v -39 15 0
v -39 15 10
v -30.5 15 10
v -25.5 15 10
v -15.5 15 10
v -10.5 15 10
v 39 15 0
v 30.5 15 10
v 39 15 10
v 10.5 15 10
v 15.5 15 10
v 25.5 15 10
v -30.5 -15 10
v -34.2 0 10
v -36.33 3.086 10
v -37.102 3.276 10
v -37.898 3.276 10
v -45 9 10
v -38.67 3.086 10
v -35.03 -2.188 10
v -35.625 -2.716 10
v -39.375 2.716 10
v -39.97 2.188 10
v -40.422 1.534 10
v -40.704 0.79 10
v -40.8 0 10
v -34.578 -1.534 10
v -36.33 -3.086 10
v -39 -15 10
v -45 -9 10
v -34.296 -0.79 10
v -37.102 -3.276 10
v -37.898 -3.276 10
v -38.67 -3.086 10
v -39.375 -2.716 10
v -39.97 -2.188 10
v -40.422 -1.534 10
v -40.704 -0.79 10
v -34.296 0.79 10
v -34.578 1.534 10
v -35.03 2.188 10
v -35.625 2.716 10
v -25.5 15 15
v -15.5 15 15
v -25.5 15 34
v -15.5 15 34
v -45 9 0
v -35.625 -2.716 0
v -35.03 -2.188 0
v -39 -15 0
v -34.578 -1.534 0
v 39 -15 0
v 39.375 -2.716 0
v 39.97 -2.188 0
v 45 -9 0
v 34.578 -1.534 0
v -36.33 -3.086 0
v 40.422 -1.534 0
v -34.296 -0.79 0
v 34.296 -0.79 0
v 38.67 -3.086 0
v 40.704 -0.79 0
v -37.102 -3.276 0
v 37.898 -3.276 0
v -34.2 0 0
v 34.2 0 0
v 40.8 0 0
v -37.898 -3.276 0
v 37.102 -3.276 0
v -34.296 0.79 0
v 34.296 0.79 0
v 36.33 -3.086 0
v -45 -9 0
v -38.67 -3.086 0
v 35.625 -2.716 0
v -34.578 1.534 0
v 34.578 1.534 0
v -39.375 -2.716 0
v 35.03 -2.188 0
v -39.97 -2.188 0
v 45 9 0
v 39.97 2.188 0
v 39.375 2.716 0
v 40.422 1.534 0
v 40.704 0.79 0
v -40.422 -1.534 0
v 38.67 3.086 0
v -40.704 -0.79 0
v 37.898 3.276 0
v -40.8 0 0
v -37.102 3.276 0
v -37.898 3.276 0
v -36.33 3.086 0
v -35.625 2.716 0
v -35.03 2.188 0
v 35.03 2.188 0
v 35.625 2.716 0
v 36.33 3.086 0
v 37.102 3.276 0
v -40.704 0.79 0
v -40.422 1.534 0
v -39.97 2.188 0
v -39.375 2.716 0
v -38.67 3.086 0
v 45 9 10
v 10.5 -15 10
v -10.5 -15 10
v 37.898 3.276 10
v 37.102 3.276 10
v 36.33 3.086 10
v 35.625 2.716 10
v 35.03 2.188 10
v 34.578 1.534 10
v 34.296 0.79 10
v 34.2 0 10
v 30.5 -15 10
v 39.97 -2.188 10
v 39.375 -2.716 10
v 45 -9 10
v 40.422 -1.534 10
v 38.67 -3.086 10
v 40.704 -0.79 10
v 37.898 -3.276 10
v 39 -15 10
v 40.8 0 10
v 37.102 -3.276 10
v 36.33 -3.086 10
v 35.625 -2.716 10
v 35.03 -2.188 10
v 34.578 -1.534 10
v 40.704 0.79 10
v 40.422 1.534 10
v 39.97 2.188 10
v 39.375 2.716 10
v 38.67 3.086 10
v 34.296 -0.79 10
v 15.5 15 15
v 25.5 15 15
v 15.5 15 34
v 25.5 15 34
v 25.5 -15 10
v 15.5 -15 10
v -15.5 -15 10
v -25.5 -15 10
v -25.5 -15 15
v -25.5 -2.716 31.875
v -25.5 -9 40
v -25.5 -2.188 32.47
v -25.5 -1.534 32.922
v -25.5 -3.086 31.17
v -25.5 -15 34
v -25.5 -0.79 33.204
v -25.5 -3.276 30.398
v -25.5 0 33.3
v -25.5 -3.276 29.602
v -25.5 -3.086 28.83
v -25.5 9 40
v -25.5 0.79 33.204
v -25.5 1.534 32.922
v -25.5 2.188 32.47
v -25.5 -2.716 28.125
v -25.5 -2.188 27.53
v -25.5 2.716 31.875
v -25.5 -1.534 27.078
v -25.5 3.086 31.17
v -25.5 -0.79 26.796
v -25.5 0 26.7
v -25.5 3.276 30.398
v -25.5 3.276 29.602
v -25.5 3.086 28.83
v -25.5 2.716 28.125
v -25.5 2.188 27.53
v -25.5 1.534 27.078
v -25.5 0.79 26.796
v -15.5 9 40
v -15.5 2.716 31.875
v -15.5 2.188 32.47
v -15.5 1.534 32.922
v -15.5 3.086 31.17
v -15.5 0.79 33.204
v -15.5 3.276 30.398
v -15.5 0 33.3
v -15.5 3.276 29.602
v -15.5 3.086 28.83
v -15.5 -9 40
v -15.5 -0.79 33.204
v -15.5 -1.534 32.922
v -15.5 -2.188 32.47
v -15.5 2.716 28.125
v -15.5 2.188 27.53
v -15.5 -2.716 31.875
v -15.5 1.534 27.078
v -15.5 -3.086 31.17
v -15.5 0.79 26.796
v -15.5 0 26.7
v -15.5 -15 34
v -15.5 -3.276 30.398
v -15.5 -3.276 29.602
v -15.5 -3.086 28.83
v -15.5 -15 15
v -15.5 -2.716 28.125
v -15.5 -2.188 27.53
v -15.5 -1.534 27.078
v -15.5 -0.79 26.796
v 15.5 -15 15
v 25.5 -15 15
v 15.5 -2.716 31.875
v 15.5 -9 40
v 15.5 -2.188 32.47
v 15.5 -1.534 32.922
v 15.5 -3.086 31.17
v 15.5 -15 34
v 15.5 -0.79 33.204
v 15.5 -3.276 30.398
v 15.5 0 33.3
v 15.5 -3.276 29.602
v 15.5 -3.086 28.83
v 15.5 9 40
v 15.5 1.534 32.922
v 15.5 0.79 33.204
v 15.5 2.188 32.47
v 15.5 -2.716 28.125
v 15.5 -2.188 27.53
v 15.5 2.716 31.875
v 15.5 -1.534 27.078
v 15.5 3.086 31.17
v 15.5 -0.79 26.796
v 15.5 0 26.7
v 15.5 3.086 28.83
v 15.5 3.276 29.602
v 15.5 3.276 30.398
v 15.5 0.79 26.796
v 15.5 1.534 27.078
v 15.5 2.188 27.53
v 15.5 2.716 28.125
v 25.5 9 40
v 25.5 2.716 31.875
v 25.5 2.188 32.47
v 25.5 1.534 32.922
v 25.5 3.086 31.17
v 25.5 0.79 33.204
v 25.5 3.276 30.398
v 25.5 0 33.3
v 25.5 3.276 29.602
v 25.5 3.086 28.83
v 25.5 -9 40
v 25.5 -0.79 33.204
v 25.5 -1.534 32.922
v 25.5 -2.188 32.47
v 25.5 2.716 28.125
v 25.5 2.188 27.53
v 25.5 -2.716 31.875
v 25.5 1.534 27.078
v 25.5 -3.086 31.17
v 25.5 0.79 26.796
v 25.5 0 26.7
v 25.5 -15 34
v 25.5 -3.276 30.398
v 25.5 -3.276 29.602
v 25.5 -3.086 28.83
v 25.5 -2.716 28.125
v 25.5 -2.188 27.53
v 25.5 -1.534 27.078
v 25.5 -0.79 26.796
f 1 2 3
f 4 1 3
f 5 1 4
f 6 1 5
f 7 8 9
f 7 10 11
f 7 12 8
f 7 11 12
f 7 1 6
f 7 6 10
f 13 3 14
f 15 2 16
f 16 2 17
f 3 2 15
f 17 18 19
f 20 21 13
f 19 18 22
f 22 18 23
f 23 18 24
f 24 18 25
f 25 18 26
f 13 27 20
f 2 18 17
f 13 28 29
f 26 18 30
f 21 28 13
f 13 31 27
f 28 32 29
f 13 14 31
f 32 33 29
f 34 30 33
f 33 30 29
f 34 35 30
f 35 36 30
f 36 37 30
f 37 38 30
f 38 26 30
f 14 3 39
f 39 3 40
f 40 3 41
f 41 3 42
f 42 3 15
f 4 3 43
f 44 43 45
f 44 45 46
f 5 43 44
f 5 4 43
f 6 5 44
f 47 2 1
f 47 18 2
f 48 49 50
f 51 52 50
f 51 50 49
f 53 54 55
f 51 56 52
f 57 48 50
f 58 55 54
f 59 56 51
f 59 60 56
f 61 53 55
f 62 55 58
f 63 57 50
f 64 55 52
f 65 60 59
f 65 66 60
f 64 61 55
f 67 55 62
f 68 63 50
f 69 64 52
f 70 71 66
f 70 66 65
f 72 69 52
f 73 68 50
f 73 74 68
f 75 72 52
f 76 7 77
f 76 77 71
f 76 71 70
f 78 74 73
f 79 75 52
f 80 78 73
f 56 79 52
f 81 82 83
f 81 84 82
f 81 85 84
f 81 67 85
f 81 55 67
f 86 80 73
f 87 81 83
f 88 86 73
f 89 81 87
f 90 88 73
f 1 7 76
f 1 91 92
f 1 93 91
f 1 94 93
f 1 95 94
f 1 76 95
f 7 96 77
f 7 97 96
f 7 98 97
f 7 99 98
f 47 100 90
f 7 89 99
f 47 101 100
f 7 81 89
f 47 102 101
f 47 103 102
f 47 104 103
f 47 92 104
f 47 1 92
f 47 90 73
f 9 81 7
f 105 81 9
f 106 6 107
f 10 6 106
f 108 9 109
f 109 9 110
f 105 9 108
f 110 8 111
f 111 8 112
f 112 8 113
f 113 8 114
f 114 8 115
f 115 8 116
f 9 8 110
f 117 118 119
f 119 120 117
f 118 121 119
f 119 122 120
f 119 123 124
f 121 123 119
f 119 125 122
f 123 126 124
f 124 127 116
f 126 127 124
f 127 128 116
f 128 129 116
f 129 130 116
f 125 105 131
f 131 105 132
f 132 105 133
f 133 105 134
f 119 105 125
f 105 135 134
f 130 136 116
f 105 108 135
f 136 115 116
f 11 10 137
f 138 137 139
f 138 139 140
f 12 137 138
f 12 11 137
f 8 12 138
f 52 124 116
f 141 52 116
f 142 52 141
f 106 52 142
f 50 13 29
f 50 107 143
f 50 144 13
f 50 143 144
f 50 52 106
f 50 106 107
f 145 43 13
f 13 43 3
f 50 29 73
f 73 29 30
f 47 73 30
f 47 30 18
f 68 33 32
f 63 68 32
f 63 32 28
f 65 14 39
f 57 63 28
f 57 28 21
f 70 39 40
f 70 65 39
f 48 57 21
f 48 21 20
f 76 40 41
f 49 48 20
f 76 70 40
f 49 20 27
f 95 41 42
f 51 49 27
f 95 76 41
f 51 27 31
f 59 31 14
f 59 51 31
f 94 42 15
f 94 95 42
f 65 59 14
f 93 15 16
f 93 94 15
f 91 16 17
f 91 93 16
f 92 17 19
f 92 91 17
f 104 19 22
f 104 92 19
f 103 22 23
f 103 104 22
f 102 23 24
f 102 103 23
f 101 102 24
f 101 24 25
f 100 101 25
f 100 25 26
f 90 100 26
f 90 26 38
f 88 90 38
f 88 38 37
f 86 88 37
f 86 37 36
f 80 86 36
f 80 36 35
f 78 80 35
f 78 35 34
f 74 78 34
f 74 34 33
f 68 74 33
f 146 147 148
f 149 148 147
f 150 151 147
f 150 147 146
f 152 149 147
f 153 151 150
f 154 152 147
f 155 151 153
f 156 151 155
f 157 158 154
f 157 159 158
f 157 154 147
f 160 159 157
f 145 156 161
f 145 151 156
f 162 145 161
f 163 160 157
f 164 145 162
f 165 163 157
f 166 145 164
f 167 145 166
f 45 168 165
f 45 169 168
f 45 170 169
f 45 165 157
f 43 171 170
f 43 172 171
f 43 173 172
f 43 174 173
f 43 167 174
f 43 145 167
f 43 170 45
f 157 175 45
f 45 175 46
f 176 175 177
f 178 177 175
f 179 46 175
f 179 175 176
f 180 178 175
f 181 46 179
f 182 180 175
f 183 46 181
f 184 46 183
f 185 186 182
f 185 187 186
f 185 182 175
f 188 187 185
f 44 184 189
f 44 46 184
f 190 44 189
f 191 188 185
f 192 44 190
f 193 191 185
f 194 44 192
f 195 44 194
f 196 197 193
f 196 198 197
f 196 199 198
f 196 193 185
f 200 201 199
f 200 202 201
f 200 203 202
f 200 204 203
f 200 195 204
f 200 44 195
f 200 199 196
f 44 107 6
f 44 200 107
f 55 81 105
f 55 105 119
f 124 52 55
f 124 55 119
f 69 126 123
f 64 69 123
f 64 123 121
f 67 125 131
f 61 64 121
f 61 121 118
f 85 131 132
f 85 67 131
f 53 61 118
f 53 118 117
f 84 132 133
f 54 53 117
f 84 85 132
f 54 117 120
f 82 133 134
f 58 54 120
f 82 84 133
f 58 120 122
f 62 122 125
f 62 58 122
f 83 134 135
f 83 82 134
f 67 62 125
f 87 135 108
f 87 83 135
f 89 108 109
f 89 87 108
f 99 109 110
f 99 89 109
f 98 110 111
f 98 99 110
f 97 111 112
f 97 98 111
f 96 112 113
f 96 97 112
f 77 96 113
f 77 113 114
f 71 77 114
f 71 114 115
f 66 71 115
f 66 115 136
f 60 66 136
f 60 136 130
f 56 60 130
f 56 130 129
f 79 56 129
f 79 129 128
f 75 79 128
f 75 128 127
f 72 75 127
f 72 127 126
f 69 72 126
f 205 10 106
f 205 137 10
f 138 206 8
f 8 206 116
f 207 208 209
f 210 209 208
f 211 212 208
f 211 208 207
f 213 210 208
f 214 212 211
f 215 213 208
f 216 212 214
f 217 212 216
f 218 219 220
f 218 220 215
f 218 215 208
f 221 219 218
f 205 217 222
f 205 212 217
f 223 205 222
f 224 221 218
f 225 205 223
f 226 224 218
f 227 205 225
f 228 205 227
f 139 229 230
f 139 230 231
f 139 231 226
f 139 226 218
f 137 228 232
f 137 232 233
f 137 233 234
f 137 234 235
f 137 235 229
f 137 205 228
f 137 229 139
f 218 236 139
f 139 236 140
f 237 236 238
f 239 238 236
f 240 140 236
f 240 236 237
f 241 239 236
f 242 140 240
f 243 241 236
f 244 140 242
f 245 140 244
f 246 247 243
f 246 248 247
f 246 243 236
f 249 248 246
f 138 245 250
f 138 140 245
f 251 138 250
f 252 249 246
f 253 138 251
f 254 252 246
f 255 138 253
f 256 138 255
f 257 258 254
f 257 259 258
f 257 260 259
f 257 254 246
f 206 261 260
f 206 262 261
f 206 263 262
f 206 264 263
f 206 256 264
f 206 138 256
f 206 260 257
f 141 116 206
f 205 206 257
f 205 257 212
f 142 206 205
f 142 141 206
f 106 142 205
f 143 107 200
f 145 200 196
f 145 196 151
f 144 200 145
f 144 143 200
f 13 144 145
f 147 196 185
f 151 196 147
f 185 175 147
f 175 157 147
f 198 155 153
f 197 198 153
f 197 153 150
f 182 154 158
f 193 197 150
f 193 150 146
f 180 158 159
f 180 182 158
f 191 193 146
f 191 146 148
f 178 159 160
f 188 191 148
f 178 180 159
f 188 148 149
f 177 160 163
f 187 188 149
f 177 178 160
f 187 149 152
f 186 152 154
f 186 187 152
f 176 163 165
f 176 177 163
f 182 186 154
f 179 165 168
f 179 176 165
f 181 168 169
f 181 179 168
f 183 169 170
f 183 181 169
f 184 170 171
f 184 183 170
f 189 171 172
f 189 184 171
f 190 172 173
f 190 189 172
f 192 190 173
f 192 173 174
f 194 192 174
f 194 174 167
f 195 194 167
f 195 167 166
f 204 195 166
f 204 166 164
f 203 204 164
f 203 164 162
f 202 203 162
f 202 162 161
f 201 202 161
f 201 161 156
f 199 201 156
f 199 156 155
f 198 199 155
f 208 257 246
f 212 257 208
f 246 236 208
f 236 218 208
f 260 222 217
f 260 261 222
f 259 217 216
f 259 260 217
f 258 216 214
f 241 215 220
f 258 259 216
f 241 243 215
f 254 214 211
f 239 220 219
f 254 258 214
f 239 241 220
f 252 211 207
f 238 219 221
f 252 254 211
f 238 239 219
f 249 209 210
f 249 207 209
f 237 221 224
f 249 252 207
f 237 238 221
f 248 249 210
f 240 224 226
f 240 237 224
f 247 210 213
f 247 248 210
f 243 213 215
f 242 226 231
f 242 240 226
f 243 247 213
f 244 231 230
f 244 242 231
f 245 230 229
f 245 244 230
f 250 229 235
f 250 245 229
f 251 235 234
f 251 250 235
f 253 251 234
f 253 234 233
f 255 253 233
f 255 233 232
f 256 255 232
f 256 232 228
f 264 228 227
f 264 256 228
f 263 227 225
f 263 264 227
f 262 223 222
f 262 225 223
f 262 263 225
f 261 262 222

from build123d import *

# Parameters (mm, degrees)
SKETCH_W        = 90
SKETCH_H        = 30
PAD_DEPTH       = 10
SKETCH001_W     = 10
SKETCH001_H     = 30
PAD001_DEPTH    = 30
CHAMFER_SIZE    = 6
SKETCH002_R     = 3.3
HOLE_DEPTH      = 58.01716
HOLE_TIPS_R     = 3.3
CHAMFER001_SIZE = 5
SKETCH003_R     = 3.3
HOLE001_DEPTH   = 25


with BuildPart() as part:
    # Sketch → Pad (new body)
    with BuildSketch(Plane.XY):
        Rectangle(SKETCH_W, SKETCH_H)
    extrude(amount=PAD_DEPTH)

    # Sketch001 → Pad001 (join)
    with BuildSketch(Plane.XY.offset(10)):
        with Locations((20.5, 0)):
            Rectangle(SKETCH001_W, SKETCH001_H)
        with Locations((-20.5, 0)):
            Rectangle(SKETCH001_W, SKETCH001_H)
    extrude(amount=PAD001_DEPTH)

    # Chamfer
    chamfer_edges = [part.edges().sort_by_distance(p)[0] for p in [
        (-45, 15, 5),
        (-45, -15, 5),
        (-20.5, 15, 40),
        (-20.5, -15, 40),
        (20.5, 15, 40),
        (45, 15, 5),
        (20.5, -15, 40),
        (45, -15, 5),
    ]]
    chamfer(chamfer_edges, length=CHAMFER_SIZE)

    # Sketch002 (on Face15 of Chamfer) → Hole (cut)
    with BuildSketch(Plane(origin=(-25.5, 0, 0), x_dir=(0, -1, 0), z_dir=(-1, 0, 0))):
        with Locations((0, 30)):
            Circle(SKETCH002_R)
    extrude(amount=-HOLE_DEPTH, mode=Mode.SUBTRACT)

    # Hole tips → Hole tip 1 section 0
    with BuildSketch(Plane(origin=(32.51716, 0, 0), x_dir=(0, -1, 0), z_dir=(-1, 0, 0)), mode=Mode.PRIVATE) as hole_tip_1_s0:
        with Locations((0, 30)):
            Circle(HOLE_TIPS_R)
    loft([hole_tip_1_s0.sketch, Vertex(34.5, 0, 30)], mode=Mode.SUBTRACT)

    # Chamfer001
    chamfer001_edges = [part.edges().sort_by_distance(p)[0] for p in [
        (25.5, 0, 10),
        (-15.5, 0, 10),
        (-25.5, 0, 10),
        (15.5, 0, 10),
    ]]
    chamfer(chamfer001_edges, length=CHAMFER001_SIZE)

    # Sketch003 (on Face2 of Chamfer001) → Hole001 (cut)
    with BuildSketch(Plane.XY.offset(10)):
        with Locations((-37.5, 0)):
            Circle(SKETCH003_R)
        with Locations((37.5, 0)):
            Circle(SKETCH003_R)
    extrude(amount=-HOLE001_DEPTH, mode=Mode.SUBTRACT)


solid = part.part
